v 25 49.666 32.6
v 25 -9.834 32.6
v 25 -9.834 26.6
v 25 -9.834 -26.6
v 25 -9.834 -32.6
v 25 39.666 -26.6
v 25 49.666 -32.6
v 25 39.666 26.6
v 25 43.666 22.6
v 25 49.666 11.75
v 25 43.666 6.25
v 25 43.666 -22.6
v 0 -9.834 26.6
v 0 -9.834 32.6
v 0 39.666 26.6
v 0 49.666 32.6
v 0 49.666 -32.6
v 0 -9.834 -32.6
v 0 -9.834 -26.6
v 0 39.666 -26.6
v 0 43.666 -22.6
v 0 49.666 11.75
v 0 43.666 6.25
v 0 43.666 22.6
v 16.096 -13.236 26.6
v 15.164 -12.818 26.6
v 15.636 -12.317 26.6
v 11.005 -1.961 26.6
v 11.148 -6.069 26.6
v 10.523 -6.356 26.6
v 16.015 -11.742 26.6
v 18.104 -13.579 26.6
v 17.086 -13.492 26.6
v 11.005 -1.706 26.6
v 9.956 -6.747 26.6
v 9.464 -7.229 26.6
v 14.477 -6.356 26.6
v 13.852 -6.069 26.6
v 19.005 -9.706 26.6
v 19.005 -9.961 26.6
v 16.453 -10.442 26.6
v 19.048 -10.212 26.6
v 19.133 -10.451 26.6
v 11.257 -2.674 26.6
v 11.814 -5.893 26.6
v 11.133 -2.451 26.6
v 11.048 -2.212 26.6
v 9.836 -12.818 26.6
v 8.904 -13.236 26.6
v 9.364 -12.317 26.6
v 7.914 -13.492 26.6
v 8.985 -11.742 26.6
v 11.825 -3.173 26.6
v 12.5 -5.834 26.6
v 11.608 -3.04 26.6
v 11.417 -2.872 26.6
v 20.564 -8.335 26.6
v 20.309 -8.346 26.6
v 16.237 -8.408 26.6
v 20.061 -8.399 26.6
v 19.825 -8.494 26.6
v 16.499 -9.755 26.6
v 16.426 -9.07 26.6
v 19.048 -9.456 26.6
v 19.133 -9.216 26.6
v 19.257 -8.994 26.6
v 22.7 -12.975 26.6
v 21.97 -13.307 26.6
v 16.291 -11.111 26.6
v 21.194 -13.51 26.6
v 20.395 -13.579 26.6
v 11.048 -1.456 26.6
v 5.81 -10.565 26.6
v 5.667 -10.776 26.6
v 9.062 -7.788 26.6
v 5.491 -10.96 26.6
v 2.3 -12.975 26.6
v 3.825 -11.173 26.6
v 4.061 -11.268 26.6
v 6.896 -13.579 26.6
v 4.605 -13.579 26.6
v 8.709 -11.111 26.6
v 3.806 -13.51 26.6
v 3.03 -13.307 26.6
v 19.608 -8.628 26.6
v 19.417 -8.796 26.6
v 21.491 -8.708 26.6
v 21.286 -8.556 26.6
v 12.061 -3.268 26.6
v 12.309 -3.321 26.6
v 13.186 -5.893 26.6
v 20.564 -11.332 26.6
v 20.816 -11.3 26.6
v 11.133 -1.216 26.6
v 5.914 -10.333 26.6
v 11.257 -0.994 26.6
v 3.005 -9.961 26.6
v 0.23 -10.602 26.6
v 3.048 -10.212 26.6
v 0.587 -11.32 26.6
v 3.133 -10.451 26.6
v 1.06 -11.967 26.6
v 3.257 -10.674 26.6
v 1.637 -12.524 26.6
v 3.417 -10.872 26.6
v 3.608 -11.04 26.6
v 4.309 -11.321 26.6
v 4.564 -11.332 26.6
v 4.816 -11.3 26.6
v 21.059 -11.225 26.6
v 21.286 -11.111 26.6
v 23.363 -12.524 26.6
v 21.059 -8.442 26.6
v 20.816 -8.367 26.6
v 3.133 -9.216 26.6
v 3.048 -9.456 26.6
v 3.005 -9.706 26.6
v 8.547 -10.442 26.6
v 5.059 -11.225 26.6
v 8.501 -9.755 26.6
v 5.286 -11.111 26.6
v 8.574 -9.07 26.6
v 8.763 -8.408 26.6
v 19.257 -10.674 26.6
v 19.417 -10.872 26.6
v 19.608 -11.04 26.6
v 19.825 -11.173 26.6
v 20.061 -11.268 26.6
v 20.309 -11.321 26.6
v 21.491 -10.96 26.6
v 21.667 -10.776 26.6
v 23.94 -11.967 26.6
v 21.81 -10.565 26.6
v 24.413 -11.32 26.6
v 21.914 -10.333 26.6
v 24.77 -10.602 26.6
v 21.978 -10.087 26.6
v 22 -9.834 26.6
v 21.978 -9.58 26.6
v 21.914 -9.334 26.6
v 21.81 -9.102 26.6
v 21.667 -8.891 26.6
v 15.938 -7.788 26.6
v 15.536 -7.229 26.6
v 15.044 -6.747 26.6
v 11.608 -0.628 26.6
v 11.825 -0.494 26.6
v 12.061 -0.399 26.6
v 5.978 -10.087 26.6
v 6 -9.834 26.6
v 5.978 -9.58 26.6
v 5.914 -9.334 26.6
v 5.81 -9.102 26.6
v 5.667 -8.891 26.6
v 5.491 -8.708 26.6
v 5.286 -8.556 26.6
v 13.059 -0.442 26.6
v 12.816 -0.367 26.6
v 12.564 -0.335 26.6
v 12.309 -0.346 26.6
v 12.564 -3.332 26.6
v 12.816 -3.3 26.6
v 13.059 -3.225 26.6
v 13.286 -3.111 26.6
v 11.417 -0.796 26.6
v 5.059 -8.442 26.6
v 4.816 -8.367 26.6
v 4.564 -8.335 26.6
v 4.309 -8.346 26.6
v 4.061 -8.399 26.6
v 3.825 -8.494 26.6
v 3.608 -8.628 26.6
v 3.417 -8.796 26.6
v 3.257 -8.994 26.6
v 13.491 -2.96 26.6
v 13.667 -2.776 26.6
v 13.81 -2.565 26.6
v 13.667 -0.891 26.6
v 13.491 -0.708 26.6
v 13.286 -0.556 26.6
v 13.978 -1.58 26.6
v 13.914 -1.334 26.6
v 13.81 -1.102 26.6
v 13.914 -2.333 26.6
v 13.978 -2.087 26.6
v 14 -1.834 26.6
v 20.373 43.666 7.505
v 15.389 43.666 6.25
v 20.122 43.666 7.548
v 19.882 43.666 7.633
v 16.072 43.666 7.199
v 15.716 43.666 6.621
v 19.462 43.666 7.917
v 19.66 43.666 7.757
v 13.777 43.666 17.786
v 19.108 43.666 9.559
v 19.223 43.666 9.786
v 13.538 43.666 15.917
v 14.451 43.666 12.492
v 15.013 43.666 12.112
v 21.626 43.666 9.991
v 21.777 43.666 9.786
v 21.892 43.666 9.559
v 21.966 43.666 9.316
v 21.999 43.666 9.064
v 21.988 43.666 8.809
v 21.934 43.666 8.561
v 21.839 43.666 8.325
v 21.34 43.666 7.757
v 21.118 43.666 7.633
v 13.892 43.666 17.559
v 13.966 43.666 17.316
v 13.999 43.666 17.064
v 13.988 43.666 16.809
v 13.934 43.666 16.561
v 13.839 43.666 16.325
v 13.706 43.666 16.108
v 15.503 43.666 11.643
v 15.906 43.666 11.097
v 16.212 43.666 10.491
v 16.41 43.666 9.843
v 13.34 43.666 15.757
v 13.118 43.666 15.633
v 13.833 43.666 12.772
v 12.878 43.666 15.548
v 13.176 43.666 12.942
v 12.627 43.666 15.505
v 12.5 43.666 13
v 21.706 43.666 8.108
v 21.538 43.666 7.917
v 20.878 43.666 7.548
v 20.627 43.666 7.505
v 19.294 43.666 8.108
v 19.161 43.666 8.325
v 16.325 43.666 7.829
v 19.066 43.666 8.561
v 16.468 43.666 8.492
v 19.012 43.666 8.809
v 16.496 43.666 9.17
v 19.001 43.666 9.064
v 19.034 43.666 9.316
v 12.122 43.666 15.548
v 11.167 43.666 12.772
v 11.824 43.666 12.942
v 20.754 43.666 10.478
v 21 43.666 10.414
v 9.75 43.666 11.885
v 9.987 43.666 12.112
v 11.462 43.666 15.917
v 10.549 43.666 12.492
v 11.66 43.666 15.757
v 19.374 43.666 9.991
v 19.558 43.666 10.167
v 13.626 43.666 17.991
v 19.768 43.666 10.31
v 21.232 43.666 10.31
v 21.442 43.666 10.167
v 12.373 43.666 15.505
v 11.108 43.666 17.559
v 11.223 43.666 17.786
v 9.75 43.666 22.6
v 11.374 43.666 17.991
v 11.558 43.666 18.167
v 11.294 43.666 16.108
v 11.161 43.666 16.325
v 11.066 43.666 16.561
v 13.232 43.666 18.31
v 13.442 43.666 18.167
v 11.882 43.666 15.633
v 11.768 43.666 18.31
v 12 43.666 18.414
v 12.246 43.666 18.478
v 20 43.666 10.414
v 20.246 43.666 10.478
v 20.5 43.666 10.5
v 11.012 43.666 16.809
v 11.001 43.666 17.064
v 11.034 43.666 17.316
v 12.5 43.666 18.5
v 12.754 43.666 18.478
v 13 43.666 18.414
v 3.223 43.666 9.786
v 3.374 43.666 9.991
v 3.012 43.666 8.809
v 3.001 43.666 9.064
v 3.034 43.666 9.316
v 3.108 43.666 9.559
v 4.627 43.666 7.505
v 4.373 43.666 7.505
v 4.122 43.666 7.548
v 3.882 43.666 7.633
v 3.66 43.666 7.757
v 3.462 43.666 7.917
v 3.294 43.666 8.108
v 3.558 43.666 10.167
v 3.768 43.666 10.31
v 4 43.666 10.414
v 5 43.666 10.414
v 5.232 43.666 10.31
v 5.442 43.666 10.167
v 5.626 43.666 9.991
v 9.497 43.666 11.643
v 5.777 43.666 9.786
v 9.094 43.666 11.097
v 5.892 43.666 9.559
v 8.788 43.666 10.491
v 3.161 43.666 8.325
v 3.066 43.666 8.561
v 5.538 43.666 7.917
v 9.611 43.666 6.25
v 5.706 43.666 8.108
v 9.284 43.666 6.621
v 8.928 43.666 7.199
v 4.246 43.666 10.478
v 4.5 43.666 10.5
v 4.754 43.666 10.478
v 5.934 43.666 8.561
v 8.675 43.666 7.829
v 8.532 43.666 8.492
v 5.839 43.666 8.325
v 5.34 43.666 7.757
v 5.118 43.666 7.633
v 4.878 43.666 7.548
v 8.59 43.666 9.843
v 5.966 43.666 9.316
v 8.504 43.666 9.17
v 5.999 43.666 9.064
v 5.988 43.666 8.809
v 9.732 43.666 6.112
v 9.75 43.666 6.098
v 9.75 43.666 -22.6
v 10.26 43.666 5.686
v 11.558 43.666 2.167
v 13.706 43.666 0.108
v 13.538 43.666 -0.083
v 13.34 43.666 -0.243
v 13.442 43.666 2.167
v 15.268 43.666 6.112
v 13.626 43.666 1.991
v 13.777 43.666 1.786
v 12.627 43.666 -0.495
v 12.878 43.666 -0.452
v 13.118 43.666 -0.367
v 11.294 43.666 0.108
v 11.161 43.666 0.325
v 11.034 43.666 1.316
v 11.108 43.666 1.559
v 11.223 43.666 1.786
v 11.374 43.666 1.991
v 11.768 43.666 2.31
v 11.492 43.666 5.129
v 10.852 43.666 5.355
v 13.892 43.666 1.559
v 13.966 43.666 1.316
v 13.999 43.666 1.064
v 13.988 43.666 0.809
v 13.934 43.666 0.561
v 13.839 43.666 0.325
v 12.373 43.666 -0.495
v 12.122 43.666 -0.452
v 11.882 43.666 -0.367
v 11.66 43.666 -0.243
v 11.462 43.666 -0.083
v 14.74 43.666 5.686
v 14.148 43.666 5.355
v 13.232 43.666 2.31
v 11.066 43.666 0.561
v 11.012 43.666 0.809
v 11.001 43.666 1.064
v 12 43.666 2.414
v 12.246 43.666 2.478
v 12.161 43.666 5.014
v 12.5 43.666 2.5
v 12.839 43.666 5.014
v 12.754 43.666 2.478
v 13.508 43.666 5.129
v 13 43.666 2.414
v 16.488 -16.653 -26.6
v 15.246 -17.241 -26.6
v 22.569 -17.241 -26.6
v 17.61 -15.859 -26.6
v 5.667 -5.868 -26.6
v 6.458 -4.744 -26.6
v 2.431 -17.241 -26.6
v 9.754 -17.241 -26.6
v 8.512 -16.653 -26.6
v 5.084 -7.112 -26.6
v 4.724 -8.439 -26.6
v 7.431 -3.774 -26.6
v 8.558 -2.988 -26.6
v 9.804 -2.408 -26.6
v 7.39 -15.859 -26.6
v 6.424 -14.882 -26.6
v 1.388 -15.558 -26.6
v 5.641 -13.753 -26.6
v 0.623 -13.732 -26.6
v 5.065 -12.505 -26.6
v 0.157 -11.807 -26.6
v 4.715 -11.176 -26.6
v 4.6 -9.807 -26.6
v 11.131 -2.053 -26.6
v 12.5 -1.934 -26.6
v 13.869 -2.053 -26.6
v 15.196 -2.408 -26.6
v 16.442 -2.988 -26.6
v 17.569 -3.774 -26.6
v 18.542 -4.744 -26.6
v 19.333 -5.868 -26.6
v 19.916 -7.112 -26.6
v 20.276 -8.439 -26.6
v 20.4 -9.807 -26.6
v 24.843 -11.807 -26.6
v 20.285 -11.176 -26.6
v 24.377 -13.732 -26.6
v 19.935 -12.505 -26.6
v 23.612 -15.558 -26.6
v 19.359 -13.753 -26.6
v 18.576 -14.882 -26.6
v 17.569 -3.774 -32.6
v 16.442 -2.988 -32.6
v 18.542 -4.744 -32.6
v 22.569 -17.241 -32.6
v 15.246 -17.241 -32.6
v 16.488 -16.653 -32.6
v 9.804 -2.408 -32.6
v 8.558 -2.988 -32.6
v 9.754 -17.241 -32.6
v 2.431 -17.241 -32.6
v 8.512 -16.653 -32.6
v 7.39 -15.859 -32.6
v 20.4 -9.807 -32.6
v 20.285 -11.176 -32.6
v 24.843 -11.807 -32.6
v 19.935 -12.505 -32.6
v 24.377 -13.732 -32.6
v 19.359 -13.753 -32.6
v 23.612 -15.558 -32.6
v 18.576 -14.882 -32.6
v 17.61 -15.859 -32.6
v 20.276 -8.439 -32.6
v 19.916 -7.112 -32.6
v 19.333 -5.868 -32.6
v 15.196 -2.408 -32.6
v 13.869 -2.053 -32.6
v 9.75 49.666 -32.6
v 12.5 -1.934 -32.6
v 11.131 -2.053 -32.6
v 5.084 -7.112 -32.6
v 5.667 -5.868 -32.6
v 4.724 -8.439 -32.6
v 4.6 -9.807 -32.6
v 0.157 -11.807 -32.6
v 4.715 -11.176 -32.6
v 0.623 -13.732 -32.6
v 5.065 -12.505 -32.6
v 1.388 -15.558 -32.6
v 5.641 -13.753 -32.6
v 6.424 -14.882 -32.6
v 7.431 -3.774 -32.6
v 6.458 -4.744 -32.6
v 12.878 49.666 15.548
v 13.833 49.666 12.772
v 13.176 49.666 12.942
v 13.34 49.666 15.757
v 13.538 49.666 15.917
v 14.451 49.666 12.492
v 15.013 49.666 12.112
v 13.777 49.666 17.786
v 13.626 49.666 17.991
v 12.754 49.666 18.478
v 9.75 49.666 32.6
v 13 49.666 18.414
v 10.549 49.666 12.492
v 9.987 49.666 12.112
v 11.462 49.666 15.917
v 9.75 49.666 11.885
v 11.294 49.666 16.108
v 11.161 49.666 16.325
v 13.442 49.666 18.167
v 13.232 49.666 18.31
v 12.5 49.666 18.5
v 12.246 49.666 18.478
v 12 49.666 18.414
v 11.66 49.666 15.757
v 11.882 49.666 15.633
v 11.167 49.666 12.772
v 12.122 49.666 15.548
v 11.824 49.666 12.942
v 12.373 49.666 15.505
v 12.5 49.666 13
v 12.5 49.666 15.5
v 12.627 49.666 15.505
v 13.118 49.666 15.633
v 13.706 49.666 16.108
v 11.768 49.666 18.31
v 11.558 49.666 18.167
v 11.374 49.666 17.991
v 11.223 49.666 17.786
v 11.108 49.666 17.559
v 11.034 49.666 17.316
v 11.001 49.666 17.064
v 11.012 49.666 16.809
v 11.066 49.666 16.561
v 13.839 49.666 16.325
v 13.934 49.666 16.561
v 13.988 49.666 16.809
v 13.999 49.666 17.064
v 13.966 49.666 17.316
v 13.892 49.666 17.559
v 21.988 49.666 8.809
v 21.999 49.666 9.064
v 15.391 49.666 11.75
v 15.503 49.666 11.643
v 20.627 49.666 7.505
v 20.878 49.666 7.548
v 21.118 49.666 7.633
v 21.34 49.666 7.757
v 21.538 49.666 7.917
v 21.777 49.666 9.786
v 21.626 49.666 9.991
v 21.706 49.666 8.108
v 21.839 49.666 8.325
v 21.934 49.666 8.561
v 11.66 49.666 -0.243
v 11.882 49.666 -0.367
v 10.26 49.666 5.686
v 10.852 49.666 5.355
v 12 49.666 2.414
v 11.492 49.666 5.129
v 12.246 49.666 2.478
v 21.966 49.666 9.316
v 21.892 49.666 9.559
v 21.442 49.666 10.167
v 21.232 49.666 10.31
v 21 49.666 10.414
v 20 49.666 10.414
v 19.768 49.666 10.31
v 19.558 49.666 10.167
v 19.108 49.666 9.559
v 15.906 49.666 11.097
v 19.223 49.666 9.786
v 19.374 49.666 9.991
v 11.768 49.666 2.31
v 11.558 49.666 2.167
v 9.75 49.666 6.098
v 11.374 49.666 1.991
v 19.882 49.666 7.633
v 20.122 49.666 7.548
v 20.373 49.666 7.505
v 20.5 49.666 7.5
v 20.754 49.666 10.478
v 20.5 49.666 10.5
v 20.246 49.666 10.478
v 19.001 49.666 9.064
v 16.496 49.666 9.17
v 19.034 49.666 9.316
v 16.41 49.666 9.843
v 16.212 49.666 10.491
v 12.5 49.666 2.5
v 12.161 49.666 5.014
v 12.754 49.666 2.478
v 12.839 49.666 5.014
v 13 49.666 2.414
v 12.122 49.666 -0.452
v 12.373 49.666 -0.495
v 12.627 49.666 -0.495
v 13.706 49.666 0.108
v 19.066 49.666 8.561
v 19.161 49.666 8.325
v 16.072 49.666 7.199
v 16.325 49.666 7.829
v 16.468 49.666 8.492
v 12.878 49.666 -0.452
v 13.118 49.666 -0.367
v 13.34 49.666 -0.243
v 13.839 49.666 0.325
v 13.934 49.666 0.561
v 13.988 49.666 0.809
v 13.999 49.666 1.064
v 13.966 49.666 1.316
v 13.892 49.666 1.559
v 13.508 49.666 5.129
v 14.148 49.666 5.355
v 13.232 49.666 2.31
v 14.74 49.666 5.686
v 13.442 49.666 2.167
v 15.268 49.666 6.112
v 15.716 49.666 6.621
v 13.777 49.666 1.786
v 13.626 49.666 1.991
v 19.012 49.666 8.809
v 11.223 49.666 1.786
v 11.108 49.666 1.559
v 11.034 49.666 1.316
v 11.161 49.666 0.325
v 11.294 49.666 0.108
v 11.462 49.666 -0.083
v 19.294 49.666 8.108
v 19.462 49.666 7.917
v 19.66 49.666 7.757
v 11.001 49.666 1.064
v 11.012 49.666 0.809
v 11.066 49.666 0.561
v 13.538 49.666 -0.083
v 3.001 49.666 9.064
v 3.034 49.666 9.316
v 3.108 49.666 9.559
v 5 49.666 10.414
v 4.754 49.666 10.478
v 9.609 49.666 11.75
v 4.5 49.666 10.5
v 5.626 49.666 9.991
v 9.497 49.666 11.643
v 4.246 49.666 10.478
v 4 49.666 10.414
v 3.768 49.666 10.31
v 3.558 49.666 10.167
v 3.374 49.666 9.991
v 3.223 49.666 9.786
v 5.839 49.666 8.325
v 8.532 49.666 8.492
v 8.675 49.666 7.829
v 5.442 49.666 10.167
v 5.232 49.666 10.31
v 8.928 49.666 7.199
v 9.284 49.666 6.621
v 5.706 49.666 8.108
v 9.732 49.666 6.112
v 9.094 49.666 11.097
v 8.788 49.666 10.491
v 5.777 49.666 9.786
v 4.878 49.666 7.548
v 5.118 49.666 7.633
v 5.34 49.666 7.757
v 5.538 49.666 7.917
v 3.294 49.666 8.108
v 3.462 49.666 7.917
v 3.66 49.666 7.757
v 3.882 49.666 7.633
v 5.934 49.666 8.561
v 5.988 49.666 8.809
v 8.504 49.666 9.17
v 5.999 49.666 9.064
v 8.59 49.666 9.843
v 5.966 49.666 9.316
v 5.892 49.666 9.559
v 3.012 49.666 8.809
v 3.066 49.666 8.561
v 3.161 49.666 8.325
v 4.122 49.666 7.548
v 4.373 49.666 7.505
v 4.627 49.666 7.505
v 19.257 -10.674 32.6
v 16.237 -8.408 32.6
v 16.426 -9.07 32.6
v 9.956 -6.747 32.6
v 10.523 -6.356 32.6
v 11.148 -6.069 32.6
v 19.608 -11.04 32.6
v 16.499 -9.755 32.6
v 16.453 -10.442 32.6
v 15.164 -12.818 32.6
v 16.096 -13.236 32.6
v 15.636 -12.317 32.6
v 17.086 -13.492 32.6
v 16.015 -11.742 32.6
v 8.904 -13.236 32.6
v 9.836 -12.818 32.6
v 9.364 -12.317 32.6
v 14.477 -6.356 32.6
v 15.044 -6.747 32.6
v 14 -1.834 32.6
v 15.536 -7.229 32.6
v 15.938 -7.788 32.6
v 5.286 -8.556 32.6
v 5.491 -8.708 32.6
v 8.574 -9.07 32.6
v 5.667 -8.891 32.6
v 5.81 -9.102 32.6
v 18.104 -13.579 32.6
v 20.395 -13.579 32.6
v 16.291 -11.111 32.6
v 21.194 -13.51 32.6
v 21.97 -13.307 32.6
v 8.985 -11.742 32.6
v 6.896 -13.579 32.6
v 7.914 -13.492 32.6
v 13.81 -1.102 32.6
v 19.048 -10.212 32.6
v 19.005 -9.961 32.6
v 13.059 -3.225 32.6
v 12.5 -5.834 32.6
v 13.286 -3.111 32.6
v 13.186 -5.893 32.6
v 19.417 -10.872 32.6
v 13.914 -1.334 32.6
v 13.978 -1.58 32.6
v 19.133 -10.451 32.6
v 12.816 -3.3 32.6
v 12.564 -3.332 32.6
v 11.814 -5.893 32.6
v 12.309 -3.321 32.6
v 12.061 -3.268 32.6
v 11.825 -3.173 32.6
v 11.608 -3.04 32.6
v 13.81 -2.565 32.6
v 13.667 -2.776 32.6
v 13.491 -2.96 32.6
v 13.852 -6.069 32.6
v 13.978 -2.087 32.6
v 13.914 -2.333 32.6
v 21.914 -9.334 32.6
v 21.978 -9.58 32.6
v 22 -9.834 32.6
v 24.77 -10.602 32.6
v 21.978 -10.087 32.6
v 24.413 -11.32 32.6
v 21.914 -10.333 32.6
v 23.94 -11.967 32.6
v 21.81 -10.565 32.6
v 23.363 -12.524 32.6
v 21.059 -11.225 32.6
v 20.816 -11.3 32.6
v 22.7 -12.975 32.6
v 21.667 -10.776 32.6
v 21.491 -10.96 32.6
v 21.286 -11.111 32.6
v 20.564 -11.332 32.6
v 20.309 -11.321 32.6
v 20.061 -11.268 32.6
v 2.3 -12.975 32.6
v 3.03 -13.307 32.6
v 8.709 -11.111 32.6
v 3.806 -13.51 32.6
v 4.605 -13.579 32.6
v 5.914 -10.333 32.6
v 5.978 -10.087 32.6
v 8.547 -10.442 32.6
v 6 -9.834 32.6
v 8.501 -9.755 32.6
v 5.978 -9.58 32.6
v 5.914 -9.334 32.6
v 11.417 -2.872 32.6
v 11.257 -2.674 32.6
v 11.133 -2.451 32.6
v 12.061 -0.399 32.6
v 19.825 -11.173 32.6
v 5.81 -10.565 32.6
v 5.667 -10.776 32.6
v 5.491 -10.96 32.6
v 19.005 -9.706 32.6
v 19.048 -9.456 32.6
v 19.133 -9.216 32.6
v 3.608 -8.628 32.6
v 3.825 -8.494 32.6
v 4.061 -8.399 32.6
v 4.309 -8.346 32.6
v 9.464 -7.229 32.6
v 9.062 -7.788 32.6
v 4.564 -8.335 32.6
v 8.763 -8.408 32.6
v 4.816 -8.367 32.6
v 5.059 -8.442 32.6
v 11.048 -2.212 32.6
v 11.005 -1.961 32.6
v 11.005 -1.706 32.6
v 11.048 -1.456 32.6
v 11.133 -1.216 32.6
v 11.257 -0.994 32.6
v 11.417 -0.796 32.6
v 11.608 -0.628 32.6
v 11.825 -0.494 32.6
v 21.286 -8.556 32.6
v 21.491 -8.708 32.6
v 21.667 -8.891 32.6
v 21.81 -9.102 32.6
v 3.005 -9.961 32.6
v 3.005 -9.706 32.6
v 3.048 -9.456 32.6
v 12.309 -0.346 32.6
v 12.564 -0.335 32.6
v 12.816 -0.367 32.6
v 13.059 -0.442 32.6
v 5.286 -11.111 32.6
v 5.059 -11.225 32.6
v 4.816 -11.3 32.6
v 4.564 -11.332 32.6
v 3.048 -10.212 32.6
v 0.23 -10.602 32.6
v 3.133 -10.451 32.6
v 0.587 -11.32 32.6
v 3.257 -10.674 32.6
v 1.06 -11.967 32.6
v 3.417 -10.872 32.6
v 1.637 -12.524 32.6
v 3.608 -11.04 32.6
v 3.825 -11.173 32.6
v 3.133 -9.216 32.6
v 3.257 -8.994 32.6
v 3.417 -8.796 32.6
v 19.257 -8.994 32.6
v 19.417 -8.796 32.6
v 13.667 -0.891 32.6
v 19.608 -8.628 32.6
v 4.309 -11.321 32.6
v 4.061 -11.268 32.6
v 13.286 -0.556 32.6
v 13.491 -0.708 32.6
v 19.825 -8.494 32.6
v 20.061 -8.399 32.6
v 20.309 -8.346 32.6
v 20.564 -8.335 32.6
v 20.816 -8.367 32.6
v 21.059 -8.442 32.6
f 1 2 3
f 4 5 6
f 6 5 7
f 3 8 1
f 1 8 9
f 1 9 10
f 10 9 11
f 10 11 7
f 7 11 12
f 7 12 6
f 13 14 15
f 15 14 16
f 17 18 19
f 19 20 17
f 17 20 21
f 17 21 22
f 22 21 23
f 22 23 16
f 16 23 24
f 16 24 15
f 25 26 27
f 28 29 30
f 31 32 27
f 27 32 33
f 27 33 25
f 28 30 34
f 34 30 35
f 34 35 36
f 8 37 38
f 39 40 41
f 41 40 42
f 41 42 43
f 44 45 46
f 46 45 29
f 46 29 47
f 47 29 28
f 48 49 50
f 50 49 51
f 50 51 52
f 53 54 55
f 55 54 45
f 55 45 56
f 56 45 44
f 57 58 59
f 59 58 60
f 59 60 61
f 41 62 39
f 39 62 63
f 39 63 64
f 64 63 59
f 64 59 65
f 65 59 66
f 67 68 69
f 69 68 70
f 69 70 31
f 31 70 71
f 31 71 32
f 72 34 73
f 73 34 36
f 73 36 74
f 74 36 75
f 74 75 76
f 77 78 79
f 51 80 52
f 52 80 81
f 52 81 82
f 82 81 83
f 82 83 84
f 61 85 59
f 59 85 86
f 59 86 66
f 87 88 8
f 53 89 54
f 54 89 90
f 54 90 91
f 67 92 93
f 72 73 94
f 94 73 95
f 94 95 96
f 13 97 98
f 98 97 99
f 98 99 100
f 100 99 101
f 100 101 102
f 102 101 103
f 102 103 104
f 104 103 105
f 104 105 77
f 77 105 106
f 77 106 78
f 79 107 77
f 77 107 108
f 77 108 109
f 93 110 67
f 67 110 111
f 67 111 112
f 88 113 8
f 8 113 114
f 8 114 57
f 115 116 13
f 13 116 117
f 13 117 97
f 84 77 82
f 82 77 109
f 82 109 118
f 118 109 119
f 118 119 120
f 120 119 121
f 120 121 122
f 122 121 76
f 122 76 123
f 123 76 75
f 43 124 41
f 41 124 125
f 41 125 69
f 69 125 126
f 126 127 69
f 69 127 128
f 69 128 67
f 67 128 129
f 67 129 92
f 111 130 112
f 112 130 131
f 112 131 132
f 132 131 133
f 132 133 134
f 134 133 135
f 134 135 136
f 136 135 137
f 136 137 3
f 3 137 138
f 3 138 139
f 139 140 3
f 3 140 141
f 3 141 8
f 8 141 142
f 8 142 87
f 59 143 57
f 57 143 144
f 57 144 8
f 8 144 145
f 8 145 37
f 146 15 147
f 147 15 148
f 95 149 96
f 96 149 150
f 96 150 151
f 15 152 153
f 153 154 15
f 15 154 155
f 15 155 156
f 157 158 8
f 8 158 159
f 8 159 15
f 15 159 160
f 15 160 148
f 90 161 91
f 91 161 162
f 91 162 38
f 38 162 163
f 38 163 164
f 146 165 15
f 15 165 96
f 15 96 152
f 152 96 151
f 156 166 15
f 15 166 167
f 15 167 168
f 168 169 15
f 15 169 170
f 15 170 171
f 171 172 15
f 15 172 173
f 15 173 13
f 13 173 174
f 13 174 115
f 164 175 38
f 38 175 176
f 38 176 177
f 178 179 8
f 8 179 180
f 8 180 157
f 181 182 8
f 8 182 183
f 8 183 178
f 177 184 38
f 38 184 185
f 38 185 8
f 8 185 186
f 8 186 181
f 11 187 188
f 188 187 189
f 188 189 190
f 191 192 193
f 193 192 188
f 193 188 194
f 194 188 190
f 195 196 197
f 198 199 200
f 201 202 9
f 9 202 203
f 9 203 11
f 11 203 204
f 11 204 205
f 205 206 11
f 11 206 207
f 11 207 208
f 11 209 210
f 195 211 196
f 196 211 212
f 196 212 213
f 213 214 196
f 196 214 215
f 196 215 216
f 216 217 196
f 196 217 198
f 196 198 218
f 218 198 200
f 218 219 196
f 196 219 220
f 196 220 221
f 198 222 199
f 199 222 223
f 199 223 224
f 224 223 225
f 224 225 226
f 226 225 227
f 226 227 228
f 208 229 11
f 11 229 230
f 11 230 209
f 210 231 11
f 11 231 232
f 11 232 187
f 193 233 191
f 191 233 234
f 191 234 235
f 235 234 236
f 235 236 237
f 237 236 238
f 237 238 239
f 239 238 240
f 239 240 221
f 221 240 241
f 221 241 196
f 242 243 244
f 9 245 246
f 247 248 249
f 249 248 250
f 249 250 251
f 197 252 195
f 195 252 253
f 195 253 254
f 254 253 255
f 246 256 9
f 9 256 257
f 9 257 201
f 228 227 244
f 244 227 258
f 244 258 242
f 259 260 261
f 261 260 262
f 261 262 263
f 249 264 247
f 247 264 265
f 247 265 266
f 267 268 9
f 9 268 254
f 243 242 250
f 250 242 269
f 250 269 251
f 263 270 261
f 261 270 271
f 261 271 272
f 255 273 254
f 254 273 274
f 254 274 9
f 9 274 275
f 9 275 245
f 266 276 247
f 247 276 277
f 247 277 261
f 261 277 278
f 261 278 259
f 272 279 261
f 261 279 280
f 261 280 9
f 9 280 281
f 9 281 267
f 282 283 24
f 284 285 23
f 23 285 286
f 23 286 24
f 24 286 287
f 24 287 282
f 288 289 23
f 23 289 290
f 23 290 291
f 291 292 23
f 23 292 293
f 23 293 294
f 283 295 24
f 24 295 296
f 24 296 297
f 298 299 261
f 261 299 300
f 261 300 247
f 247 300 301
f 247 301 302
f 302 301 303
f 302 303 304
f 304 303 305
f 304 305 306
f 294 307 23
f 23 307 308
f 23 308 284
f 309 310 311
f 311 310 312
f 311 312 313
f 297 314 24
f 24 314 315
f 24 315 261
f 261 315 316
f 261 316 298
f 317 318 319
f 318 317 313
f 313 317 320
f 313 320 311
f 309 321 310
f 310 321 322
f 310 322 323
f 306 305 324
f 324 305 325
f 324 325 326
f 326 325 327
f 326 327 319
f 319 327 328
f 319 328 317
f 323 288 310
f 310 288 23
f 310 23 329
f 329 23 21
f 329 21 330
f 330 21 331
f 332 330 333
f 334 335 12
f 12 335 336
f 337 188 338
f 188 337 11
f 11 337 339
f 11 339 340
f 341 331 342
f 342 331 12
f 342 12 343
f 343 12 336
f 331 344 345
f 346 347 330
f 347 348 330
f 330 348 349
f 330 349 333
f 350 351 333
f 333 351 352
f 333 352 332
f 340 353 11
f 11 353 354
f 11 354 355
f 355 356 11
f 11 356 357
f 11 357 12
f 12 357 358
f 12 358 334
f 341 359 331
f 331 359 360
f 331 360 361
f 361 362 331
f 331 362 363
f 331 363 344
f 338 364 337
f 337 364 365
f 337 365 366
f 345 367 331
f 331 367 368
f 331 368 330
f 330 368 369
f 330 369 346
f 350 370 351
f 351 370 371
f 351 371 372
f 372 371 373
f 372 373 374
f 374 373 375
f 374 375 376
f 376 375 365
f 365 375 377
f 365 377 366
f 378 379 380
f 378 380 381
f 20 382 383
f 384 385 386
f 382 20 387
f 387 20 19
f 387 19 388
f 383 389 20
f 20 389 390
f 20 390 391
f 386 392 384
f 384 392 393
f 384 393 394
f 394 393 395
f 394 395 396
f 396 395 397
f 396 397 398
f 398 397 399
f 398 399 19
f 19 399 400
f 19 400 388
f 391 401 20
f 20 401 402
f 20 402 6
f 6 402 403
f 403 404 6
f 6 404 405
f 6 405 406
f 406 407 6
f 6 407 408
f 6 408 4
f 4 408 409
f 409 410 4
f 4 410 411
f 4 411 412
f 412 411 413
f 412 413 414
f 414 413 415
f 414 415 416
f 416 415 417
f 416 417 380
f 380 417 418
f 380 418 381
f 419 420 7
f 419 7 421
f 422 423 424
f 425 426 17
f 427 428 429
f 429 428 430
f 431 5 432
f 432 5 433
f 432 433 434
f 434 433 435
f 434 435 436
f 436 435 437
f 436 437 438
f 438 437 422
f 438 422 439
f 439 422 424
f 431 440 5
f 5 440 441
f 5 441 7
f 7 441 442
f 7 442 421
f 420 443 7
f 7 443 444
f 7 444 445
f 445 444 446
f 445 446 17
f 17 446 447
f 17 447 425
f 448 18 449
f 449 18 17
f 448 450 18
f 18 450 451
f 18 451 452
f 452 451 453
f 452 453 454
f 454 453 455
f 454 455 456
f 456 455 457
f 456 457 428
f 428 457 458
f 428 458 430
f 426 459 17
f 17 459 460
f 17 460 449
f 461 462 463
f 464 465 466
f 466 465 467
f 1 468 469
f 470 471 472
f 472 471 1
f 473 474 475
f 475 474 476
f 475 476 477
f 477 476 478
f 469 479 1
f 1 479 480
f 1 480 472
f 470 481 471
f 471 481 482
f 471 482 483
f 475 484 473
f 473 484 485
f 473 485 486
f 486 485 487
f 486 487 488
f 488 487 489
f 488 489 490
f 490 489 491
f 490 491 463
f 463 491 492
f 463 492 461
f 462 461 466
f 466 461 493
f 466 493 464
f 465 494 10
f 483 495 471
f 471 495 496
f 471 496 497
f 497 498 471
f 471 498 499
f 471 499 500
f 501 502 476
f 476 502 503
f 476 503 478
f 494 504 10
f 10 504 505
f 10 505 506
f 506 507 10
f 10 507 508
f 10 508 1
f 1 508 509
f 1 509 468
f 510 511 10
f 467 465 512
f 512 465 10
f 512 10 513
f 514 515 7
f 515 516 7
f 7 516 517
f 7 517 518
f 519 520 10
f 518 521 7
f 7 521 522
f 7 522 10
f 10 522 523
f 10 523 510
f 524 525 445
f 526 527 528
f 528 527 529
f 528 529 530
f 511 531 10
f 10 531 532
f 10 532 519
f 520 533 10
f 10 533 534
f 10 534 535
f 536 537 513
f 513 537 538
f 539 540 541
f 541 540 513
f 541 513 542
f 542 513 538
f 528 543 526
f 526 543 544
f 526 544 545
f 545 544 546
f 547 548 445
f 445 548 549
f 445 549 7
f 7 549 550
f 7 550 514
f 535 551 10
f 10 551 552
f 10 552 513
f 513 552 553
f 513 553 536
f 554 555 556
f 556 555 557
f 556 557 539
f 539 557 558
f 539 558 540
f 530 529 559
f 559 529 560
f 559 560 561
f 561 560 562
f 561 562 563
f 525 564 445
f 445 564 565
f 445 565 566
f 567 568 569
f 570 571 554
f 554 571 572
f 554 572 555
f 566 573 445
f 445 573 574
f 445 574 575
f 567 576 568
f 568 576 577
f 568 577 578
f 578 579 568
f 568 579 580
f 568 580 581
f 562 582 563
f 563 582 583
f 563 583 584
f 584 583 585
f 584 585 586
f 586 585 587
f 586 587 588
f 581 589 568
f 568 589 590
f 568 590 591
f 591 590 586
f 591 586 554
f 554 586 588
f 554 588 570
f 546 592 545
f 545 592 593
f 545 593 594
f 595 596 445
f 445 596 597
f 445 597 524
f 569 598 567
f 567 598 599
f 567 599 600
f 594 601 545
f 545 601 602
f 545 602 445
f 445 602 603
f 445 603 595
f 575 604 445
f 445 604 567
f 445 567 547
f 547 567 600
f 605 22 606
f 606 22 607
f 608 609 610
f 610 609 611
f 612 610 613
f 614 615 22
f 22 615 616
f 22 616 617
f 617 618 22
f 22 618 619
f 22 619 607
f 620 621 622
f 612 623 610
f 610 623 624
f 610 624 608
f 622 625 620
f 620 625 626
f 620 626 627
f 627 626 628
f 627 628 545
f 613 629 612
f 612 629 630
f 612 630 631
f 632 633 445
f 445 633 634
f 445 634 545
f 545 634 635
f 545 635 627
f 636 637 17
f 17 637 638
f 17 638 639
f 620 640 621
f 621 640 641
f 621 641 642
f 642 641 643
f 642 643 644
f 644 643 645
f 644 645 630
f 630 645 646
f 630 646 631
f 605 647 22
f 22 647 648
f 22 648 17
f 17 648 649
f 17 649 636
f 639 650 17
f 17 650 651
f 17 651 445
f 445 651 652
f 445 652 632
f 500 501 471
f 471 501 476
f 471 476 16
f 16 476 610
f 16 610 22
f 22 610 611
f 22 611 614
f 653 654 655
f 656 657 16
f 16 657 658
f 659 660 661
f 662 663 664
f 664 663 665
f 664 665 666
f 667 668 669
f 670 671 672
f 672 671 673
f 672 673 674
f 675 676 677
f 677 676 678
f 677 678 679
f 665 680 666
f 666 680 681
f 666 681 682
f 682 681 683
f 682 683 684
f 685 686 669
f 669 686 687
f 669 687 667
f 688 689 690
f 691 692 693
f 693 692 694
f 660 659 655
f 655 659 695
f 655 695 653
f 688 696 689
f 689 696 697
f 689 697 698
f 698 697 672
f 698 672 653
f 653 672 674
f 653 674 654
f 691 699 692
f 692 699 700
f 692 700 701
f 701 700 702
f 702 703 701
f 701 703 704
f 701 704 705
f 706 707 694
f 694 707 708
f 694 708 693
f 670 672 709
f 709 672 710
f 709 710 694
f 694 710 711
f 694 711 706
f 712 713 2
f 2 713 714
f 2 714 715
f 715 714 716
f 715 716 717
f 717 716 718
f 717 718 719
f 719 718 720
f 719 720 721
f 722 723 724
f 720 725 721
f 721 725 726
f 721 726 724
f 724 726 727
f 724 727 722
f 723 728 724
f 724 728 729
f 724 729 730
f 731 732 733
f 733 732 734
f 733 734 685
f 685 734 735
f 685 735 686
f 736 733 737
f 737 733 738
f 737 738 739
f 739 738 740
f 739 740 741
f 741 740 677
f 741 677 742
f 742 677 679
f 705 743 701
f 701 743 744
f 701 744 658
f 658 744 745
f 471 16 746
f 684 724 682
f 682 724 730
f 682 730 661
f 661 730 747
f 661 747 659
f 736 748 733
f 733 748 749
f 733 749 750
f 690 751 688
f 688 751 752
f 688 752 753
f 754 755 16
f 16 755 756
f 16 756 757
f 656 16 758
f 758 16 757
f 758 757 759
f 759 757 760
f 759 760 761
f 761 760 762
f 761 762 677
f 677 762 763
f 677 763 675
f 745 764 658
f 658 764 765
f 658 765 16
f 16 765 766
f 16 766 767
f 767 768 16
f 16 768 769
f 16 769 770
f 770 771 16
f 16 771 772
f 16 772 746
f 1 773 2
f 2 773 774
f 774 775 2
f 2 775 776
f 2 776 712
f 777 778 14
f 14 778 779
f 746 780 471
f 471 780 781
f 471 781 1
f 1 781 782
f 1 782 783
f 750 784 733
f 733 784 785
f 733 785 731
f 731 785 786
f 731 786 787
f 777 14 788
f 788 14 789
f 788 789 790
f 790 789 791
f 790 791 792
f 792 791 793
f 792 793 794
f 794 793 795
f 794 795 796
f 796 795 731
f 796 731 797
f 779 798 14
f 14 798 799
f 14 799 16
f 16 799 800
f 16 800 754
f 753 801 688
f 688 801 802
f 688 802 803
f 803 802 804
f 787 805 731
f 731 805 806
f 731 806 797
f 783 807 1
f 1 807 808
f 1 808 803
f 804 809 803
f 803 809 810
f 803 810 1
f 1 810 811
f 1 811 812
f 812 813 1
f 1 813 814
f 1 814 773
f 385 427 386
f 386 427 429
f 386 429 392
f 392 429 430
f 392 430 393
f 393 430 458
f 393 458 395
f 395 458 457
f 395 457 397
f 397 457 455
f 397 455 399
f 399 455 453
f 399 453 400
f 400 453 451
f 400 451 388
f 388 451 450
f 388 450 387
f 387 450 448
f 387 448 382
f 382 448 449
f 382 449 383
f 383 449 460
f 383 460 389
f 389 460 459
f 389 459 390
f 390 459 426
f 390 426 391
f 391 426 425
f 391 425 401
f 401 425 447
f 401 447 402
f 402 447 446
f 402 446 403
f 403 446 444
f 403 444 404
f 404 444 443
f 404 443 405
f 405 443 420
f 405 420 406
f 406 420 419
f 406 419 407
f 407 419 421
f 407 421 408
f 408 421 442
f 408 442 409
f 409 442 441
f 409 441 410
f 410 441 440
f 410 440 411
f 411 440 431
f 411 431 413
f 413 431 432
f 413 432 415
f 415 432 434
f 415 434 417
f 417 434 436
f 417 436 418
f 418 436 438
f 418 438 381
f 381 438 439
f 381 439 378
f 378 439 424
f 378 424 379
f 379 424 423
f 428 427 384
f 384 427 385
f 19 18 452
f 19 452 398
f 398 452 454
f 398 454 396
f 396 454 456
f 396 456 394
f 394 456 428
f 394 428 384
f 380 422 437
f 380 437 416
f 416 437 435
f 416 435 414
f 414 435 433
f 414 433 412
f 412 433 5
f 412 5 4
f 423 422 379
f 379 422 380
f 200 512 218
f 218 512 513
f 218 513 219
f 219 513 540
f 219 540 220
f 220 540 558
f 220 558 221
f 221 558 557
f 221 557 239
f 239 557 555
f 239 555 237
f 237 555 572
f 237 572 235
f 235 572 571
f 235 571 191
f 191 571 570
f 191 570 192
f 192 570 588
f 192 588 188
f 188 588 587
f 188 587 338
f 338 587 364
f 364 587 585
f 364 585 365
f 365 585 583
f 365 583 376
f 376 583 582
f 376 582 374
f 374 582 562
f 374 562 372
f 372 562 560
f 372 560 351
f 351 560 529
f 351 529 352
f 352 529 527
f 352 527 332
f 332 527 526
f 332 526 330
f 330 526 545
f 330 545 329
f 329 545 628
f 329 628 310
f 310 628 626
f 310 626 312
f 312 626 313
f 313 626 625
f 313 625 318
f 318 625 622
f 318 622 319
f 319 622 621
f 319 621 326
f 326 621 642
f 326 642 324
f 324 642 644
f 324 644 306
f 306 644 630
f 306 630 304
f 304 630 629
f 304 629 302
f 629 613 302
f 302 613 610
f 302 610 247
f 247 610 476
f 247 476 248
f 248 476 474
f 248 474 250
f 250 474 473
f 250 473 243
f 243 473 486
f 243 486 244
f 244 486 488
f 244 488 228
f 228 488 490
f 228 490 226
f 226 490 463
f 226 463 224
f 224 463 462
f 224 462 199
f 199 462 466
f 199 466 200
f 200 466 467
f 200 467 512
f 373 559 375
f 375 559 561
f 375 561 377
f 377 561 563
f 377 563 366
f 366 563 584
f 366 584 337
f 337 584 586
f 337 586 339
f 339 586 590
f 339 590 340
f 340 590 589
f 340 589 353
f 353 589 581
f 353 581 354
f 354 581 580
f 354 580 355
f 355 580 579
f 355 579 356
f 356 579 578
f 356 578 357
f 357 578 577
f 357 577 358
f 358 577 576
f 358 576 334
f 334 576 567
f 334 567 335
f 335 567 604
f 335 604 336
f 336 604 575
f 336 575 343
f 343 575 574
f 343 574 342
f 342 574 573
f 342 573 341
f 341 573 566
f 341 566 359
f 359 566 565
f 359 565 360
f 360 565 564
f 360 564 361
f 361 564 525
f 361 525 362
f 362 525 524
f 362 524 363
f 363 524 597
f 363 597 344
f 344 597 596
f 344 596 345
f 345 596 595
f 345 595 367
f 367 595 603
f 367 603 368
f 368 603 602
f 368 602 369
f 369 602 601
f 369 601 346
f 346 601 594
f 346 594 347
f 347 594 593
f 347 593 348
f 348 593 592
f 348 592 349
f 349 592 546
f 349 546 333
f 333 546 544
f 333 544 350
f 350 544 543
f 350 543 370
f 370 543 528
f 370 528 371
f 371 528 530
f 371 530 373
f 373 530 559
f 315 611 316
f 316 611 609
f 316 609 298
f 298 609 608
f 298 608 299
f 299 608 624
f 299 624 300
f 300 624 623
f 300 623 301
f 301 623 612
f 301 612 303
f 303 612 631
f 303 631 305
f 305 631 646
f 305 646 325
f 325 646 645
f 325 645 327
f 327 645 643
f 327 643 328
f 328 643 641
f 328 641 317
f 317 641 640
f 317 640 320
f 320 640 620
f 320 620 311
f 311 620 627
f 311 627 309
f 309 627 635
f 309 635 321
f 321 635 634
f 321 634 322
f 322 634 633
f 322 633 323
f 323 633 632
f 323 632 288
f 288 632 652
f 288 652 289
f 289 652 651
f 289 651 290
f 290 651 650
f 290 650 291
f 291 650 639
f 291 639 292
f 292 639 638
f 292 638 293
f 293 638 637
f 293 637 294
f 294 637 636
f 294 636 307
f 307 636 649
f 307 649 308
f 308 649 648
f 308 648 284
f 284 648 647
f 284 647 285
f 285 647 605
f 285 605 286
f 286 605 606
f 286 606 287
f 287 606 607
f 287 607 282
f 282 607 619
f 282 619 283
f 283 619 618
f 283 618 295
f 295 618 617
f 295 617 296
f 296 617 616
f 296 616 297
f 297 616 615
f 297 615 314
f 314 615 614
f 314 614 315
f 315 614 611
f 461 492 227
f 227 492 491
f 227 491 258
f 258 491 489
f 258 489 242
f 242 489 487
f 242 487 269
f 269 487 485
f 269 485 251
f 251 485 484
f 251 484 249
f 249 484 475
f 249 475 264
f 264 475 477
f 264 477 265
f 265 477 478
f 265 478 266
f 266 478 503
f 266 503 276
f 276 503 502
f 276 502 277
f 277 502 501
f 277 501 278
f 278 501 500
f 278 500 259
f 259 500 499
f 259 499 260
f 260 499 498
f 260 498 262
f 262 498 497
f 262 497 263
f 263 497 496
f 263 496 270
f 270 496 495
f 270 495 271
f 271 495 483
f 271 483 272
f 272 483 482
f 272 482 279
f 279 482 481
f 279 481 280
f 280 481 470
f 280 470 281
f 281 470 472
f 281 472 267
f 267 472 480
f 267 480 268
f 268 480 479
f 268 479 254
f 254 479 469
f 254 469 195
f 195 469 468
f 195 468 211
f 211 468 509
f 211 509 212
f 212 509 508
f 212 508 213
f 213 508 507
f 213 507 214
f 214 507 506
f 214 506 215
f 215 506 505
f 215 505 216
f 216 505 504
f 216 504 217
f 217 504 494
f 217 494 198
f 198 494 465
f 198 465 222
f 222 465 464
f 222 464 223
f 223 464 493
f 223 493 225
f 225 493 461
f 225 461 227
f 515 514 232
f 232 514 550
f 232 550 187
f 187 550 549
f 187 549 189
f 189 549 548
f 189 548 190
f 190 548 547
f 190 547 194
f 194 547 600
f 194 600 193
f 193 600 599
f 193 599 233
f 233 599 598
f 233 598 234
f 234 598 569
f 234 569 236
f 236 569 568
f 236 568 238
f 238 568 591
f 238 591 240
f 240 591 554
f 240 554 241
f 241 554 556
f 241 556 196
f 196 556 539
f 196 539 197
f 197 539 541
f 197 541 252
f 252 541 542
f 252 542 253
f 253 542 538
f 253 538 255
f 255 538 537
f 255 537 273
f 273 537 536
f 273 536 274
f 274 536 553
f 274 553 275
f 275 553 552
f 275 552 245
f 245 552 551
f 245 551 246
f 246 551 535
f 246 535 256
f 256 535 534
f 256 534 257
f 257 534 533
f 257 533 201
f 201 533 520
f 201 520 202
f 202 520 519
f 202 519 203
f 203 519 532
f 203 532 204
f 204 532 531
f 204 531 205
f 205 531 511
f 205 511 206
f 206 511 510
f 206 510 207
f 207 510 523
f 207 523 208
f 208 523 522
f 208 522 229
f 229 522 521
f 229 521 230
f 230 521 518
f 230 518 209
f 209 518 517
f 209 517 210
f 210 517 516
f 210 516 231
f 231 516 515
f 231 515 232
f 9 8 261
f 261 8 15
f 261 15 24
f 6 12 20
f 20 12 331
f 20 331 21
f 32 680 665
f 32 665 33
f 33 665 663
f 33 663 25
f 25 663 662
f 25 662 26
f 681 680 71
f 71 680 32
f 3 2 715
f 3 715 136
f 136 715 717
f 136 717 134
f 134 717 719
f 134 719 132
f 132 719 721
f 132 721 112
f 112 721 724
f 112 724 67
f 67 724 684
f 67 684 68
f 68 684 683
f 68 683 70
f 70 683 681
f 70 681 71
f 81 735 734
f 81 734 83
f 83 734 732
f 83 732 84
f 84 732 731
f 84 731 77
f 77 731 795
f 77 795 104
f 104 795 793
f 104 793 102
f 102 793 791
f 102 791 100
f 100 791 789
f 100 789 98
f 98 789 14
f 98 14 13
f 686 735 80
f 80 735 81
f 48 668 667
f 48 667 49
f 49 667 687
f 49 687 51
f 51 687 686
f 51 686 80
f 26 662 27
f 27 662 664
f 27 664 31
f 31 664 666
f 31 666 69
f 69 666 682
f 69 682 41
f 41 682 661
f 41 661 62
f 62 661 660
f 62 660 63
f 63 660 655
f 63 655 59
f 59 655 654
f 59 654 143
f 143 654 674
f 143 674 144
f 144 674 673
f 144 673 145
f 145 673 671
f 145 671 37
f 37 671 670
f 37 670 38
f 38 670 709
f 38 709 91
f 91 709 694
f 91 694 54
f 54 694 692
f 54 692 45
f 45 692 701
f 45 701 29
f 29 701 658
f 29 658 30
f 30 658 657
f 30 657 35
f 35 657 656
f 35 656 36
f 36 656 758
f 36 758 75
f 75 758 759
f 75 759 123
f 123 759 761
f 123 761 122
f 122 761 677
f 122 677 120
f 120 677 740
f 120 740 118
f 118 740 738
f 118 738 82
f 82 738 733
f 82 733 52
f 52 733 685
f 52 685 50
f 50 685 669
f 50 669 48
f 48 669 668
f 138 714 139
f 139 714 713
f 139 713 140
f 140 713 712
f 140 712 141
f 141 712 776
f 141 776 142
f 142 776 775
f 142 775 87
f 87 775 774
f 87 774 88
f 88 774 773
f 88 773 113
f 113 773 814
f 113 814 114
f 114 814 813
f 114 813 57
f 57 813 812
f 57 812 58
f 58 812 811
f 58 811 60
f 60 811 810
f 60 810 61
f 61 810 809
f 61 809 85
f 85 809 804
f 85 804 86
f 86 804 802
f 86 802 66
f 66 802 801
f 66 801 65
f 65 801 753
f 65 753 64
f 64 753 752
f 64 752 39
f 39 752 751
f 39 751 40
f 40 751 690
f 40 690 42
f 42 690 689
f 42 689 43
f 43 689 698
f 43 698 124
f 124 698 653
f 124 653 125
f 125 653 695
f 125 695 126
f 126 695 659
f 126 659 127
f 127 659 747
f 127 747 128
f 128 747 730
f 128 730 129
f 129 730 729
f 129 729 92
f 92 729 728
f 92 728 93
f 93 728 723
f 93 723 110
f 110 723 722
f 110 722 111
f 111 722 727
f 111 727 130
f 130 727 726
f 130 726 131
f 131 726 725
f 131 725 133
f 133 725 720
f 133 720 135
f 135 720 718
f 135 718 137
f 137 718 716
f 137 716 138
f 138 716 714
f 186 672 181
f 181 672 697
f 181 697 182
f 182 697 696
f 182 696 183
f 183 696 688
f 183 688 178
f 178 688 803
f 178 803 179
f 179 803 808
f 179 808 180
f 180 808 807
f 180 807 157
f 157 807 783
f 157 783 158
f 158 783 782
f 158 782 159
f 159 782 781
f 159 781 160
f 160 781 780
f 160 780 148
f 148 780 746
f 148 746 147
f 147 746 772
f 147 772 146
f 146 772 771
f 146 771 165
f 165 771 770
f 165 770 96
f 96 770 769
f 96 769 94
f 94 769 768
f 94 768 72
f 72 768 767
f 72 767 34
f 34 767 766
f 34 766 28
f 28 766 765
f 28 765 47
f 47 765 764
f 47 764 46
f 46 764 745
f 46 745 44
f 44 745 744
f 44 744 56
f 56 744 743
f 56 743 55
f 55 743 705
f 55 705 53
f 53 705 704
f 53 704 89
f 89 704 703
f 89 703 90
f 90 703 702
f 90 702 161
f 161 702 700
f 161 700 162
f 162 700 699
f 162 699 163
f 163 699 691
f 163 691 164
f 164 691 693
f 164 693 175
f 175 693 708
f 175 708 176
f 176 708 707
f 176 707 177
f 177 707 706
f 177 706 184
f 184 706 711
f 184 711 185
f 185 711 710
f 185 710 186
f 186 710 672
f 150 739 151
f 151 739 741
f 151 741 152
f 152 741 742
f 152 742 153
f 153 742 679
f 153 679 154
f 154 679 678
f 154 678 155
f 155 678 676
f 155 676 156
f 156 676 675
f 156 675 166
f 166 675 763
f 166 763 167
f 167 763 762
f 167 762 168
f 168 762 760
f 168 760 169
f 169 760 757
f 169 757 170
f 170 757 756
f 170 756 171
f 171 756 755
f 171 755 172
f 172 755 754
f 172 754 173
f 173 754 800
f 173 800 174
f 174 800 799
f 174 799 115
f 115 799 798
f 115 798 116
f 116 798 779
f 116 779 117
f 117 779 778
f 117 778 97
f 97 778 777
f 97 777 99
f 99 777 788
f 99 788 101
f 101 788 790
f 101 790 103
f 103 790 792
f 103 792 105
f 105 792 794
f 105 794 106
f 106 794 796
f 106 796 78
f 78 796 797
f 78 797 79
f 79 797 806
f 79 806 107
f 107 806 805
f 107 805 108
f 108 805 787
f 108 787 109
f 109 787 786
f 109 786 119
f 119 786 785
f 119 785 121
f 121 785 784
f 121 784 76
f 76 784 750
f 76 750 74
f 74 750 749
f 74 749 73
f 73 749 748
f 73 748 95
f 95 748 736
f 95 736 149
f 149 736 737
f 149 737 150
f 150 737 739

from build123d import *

# Parameters (mm, degrees)
SALIENTE_EXTRUIR1_DEPTH = 25
CORTAR_EXTRUIR2_REACH   = 67.2
CORTAR_EXTRUIR3_REACH   = 72
CROQUIS4_R              = 1.5
CROQUIS4_R_2            = 4
CHAFL_N1_SIZE           = 4
CORTAR_EXTRUIR5_REACH   = 67.2
CROQUIS8_R              = 1.5


with BuildPart() as part:
    # Croquis1 → Saliente-Extruir1 (new body)
    with BuildSketch(Plane(origin=(0, 0, 0), x_dir=(0, 0, -1), z_dir=(1, 0, 0))):
        Polygon((-26.6, -20.333615037), (-26.6, 43.666384963), (26.6, 43.666384963), (26.6, -20.333615037), (32.6, -20.333615037), (32.6, 49.666384963), (-32.6, 49.666384963), (-32.6, -20.333615037), align=None)
    extrude(amount=SALIENTE_EXTRUIR1_DEPTH)

    # Croquis3 → Cortar-Extruir2 (cut, up to next)
    with BuildSketch(Plane(origin=(0, 0, -32.6), x_dir=(-1, 0, 0), z_dir=(0, 0, -1)), mode=Mode.PRIVATE) as cortar_extruir2_sk1:
        with BuildLine():
            Line((-15.246347098, -17.240880228), (-22.56888387, -17.240880228))
            ThreePointArc((-22.56888387, -17.240880228), (-24.376679847, -13.731624248), (-25, -9.833615037))
            Line((-25, -9.833615037), (-25, -20.333615037))
            Line((-25, -20.333615037), (0, -20.333615037))
            Line((0, -20.333615037), (0, -9.833615037))
            ThreePointArc((0, -9.833615037), (-0.623320153, -13.731624248), (-2.43111613, -17.240880228))
            Line((-2.43111613, -17.240880228), (-9.753652902, -17.240880228))
            ThreePointArc((-9.753652902, -17.240880228), (-12.5, -1.933615037), (-15.246347098, -17.240880228))
        make_face()
    cortar_extruir2_tool1 = extrude(cortar_extruir2_sk1.sketch, amount=-CORTAR_EXTRUIR2_REACH, mode=Mode.PRIVATE) & part.part
    add(cortar_extruir2_tool1.solids().sort_by_distance((12.5, -12.457644, -32.6))[0], mode=Mode.SUBTRACT)

    # Croquis4 → Cortar-Extruir3 (cut, up to next)
    with BuildSketch(Plane(origin=(0, 49.666384963, 0), x_dir=(1, 0, 0), z_dir=(0, 1, 0)), mode=Mode.PRIVATE) as cortar_extruir3_sk1:
        with Locations((12.5, -1)):
            Circle(CROQUIS4_R)
    cortar_extruir3_tool1 = extrude(cortar_extruir3_sk1.sketch, amount=-CORTAR_EXTRUIR3_REACH, mode=Mode.PRIVATE) & part.part
    add(cortar_extruir3_tool1.solids().sort_by_distance((12.5, 49.666385, 1))[0], mode=Mode.SUBTRACT)
    # Croquis4 → Cortar-Extruir3 (cut, up to next)
    with BuildSketch(Plane(origin=(0, 49.666384963, 0), x_dir=(1, 0, 0), z_dir=(0, 1, 0)), mode=Mode.PRIVATE) as cortar_extruir3_sk2:
        with Locations((4.5, -9)):
            Circle(CROQUIS4_R)
    cortar_extruir3_tool2 = extrude(cortar_extruir3_sk2.sketch, amount=-CORTAR_EXTRUIR3_REACH, mode=Mode.PRIVATE) & part.part
    add(cortar_extruir3_tool2.solids().sort_by_distance((4.5, 49.666385, 9))[0], mode=Mode.SUBTRACT)
    # Croquis4 → Cortar-Extruir3 (cut, up to next)
    with BuildSketch(Plane(origin=(0, 49.666384963, 0), x_dir=(1, 0, 0), z_dir=(0, 1, 0)), mode=Mode.PRIVATE) as cortar_extruir3_sk3:
        with Locations((12.5, -17)):
            Circle(CROQUIS4_R)
    cortar_extruir3_tool3 = extrude(cortar_extruir3_sk3.sketch, amount=-CORTAR_EXTRUIR3_REACH, mode=Mode.PRIVATE) & part.part
    add(cortar_extruir3_tool3.solids().sort_by_distance((12.5, 49.666385, 17))[0], mode=Mode.SUBTRACT)
    # Croquis4 → Cortar-Extruir3 (cut, up to next)
    with BuildSketch(Plane(origin=(0, 49.666384963, 0), x_dir=(1, 0, 0), z_dir=(0, 1, 0)), mode=Mode.PRIVATE) as cortar_extruir3_sk4:
        with Locations((20.5, -9)):
            Circle(CROQUIS4_R)
    cortar_extruir3_tool4 = extrude(cortar_extruir3_sk4.sketch, amount=-CORTAR_EXTRUIR3_REACH, mode=Mode.PRIVATE) & part.part
    add(cortar_extruir3_tool4.solids().sort_by_distance((20.5, 49.666385, 9))[0], mode=Mode.SUBTRACT)
    # Croquis4 → Cortar-Extruir3 (cut, up to next)
    with BuildSketch(Plane(origin=(0, 49.666384963, 0), x_dir=(1, 0, 0), z_dir=(0, 1, 0)), mode=Mode.PRIVATE) as cortar_extruir3_sk5:
        with Locations((12.5, -9)):
            Circle(CROQUIS4_R_2)
    cortar_extruir3_tool5 = extrude(cortar_extruir3_sk5.sketch, amount=-CORTAR_EXTRUIR3_REACH, mode=Mode.PRIVATE) & part.part
    add(cortar_extruir3_tool5.solids().sort_by_distance((12.5, 49.666385, 9))[0], mode=Mode.SUBTRACT)

    # Chaflán1
    chafl_n1_edges = [part.edges().sort_by_distance(p)[0] for p in [
        (12.5, 43.666384963, -26.6),
        (12.5, 43.666384963, 26.6),
    ]]
    chamfer(chafl_n1_edges, length=CHAFL_N1_SIZE)

    # Croquis8 → Cortar-Extruir5 (cut, up to next)
    with BuildSketch(Plane.XY.offset(32.6), mode=Mode.PRIVATE) as cortar_extruir5_sk1:
        with Locations((4.5, -9.833615037)):
            Circle(CROQUIS8_R)
    cortar_extruir5_tool1 = extrude(cortar_extruir5_sk1.sketch, amount=-CORTAR_EXTRUIR5_REACH, mode=Mode.PRIVATE) & part.part
    add(cortar_extruir5_tool1.solids().sort_by_distance((4.5, -9.833615, 32.6))[0], mode=Mode.SUBTRACT)
    # Croquis8 → Cortar-Extruir5 (cut, up to next)
    with BuildSketch(Plane.XY.offset(32.6), mode=Mode.PRIVATE) as cortar_extruir5_sk2:
        with Locations((12.5, -1.833615037)):
            Circle(CROQUIS8_R)
    cortar_extruir5_tool2 = extrude(cortar_extruir5_sk2.sketch, amount=-CORTAR_EXTRUIR5_REACH, mode=Mode.PRIVATE) & part.part
    add(cortar_extruir5_tool2.solids().sort_by_distance((12.5, -1.833615, 32.6))[0], mode=Mode.SUBTRACT)
    # Croquis8 → Cortar-Extruir5 (cut, up to next)
    with BuildSketch(Plane.XY.offset(32.6), mode=Mode.PRIVATE) as cortar_extruir5_sk3:
        with Locations((20.5, -9.833615037)):
            Circle(CROQUIS8_R)
    cortar_extruir5_tool3 = extrude(cortar_extruir5_sk3.sketch, amount=-CORTAR_EXTRUIR5_REACH, mode=Mode.PRIVATE) & part.part
    add(cortar_extruir5_tool3.solids().sort_by_distance((20.5, -9.833615, 32.6))[0], mode=Mode.SUBTRACT)
    # Croquis8 → Cortar-Extruir5 (cut, up to next)
    with BuildSketch(Plane.XY.offset(32.6), mode=Mode.PRIVATE) as cortar_extruir5_sk4:
        with BuildLine():
            Line((4.605097731, -13.578746505), (6.89606083, -13.578746505))
            ThreePointArc((6.89606083, -13.578746505), (8.414491828, -13.385028449), (9.836162211, -12.817566818))
            ThreePointArc((9.836162211, -12.817566818), (12.5, -5.833615037), (15.163837789, -12.817566818))
            ThreePointArc((15.163837789, -12.817566818), (16.585508172, -13.385028449), (18.10393917, -13.578746505))
            Line((18.10393917, -13.578746505), (20.394902269, -13.578746505))
            ThreePointArc((20.394902269, -13.578746505), (23.36276913, -12.524270715), (25, -9.833615037))
            Line((25, -9.833615037), (25, -20.333615037))
            Line((25, -20.333615037), (0, -20.333615037))
            Line((0, -20.333615037), (0, -9.833615037))
            ThreePointArc((0, -9.833615037), (1.63723087, -12.524270715), (4.605097731, -13.578746505))
        make_face()
    cortar_extruir5_tool4 = extrude(cortar_extruir5_sk4.sketch, amount=-CORTAR_EXTRUIR5_REACH, mode=Mode.PRIVATE) & part.part
    add(cortar_extruir5_tool4.solids().sort_by_distance((12.5, -15.203922, 32.6))[0], mode=Mode.SUBTRACT)


solid = part.part
